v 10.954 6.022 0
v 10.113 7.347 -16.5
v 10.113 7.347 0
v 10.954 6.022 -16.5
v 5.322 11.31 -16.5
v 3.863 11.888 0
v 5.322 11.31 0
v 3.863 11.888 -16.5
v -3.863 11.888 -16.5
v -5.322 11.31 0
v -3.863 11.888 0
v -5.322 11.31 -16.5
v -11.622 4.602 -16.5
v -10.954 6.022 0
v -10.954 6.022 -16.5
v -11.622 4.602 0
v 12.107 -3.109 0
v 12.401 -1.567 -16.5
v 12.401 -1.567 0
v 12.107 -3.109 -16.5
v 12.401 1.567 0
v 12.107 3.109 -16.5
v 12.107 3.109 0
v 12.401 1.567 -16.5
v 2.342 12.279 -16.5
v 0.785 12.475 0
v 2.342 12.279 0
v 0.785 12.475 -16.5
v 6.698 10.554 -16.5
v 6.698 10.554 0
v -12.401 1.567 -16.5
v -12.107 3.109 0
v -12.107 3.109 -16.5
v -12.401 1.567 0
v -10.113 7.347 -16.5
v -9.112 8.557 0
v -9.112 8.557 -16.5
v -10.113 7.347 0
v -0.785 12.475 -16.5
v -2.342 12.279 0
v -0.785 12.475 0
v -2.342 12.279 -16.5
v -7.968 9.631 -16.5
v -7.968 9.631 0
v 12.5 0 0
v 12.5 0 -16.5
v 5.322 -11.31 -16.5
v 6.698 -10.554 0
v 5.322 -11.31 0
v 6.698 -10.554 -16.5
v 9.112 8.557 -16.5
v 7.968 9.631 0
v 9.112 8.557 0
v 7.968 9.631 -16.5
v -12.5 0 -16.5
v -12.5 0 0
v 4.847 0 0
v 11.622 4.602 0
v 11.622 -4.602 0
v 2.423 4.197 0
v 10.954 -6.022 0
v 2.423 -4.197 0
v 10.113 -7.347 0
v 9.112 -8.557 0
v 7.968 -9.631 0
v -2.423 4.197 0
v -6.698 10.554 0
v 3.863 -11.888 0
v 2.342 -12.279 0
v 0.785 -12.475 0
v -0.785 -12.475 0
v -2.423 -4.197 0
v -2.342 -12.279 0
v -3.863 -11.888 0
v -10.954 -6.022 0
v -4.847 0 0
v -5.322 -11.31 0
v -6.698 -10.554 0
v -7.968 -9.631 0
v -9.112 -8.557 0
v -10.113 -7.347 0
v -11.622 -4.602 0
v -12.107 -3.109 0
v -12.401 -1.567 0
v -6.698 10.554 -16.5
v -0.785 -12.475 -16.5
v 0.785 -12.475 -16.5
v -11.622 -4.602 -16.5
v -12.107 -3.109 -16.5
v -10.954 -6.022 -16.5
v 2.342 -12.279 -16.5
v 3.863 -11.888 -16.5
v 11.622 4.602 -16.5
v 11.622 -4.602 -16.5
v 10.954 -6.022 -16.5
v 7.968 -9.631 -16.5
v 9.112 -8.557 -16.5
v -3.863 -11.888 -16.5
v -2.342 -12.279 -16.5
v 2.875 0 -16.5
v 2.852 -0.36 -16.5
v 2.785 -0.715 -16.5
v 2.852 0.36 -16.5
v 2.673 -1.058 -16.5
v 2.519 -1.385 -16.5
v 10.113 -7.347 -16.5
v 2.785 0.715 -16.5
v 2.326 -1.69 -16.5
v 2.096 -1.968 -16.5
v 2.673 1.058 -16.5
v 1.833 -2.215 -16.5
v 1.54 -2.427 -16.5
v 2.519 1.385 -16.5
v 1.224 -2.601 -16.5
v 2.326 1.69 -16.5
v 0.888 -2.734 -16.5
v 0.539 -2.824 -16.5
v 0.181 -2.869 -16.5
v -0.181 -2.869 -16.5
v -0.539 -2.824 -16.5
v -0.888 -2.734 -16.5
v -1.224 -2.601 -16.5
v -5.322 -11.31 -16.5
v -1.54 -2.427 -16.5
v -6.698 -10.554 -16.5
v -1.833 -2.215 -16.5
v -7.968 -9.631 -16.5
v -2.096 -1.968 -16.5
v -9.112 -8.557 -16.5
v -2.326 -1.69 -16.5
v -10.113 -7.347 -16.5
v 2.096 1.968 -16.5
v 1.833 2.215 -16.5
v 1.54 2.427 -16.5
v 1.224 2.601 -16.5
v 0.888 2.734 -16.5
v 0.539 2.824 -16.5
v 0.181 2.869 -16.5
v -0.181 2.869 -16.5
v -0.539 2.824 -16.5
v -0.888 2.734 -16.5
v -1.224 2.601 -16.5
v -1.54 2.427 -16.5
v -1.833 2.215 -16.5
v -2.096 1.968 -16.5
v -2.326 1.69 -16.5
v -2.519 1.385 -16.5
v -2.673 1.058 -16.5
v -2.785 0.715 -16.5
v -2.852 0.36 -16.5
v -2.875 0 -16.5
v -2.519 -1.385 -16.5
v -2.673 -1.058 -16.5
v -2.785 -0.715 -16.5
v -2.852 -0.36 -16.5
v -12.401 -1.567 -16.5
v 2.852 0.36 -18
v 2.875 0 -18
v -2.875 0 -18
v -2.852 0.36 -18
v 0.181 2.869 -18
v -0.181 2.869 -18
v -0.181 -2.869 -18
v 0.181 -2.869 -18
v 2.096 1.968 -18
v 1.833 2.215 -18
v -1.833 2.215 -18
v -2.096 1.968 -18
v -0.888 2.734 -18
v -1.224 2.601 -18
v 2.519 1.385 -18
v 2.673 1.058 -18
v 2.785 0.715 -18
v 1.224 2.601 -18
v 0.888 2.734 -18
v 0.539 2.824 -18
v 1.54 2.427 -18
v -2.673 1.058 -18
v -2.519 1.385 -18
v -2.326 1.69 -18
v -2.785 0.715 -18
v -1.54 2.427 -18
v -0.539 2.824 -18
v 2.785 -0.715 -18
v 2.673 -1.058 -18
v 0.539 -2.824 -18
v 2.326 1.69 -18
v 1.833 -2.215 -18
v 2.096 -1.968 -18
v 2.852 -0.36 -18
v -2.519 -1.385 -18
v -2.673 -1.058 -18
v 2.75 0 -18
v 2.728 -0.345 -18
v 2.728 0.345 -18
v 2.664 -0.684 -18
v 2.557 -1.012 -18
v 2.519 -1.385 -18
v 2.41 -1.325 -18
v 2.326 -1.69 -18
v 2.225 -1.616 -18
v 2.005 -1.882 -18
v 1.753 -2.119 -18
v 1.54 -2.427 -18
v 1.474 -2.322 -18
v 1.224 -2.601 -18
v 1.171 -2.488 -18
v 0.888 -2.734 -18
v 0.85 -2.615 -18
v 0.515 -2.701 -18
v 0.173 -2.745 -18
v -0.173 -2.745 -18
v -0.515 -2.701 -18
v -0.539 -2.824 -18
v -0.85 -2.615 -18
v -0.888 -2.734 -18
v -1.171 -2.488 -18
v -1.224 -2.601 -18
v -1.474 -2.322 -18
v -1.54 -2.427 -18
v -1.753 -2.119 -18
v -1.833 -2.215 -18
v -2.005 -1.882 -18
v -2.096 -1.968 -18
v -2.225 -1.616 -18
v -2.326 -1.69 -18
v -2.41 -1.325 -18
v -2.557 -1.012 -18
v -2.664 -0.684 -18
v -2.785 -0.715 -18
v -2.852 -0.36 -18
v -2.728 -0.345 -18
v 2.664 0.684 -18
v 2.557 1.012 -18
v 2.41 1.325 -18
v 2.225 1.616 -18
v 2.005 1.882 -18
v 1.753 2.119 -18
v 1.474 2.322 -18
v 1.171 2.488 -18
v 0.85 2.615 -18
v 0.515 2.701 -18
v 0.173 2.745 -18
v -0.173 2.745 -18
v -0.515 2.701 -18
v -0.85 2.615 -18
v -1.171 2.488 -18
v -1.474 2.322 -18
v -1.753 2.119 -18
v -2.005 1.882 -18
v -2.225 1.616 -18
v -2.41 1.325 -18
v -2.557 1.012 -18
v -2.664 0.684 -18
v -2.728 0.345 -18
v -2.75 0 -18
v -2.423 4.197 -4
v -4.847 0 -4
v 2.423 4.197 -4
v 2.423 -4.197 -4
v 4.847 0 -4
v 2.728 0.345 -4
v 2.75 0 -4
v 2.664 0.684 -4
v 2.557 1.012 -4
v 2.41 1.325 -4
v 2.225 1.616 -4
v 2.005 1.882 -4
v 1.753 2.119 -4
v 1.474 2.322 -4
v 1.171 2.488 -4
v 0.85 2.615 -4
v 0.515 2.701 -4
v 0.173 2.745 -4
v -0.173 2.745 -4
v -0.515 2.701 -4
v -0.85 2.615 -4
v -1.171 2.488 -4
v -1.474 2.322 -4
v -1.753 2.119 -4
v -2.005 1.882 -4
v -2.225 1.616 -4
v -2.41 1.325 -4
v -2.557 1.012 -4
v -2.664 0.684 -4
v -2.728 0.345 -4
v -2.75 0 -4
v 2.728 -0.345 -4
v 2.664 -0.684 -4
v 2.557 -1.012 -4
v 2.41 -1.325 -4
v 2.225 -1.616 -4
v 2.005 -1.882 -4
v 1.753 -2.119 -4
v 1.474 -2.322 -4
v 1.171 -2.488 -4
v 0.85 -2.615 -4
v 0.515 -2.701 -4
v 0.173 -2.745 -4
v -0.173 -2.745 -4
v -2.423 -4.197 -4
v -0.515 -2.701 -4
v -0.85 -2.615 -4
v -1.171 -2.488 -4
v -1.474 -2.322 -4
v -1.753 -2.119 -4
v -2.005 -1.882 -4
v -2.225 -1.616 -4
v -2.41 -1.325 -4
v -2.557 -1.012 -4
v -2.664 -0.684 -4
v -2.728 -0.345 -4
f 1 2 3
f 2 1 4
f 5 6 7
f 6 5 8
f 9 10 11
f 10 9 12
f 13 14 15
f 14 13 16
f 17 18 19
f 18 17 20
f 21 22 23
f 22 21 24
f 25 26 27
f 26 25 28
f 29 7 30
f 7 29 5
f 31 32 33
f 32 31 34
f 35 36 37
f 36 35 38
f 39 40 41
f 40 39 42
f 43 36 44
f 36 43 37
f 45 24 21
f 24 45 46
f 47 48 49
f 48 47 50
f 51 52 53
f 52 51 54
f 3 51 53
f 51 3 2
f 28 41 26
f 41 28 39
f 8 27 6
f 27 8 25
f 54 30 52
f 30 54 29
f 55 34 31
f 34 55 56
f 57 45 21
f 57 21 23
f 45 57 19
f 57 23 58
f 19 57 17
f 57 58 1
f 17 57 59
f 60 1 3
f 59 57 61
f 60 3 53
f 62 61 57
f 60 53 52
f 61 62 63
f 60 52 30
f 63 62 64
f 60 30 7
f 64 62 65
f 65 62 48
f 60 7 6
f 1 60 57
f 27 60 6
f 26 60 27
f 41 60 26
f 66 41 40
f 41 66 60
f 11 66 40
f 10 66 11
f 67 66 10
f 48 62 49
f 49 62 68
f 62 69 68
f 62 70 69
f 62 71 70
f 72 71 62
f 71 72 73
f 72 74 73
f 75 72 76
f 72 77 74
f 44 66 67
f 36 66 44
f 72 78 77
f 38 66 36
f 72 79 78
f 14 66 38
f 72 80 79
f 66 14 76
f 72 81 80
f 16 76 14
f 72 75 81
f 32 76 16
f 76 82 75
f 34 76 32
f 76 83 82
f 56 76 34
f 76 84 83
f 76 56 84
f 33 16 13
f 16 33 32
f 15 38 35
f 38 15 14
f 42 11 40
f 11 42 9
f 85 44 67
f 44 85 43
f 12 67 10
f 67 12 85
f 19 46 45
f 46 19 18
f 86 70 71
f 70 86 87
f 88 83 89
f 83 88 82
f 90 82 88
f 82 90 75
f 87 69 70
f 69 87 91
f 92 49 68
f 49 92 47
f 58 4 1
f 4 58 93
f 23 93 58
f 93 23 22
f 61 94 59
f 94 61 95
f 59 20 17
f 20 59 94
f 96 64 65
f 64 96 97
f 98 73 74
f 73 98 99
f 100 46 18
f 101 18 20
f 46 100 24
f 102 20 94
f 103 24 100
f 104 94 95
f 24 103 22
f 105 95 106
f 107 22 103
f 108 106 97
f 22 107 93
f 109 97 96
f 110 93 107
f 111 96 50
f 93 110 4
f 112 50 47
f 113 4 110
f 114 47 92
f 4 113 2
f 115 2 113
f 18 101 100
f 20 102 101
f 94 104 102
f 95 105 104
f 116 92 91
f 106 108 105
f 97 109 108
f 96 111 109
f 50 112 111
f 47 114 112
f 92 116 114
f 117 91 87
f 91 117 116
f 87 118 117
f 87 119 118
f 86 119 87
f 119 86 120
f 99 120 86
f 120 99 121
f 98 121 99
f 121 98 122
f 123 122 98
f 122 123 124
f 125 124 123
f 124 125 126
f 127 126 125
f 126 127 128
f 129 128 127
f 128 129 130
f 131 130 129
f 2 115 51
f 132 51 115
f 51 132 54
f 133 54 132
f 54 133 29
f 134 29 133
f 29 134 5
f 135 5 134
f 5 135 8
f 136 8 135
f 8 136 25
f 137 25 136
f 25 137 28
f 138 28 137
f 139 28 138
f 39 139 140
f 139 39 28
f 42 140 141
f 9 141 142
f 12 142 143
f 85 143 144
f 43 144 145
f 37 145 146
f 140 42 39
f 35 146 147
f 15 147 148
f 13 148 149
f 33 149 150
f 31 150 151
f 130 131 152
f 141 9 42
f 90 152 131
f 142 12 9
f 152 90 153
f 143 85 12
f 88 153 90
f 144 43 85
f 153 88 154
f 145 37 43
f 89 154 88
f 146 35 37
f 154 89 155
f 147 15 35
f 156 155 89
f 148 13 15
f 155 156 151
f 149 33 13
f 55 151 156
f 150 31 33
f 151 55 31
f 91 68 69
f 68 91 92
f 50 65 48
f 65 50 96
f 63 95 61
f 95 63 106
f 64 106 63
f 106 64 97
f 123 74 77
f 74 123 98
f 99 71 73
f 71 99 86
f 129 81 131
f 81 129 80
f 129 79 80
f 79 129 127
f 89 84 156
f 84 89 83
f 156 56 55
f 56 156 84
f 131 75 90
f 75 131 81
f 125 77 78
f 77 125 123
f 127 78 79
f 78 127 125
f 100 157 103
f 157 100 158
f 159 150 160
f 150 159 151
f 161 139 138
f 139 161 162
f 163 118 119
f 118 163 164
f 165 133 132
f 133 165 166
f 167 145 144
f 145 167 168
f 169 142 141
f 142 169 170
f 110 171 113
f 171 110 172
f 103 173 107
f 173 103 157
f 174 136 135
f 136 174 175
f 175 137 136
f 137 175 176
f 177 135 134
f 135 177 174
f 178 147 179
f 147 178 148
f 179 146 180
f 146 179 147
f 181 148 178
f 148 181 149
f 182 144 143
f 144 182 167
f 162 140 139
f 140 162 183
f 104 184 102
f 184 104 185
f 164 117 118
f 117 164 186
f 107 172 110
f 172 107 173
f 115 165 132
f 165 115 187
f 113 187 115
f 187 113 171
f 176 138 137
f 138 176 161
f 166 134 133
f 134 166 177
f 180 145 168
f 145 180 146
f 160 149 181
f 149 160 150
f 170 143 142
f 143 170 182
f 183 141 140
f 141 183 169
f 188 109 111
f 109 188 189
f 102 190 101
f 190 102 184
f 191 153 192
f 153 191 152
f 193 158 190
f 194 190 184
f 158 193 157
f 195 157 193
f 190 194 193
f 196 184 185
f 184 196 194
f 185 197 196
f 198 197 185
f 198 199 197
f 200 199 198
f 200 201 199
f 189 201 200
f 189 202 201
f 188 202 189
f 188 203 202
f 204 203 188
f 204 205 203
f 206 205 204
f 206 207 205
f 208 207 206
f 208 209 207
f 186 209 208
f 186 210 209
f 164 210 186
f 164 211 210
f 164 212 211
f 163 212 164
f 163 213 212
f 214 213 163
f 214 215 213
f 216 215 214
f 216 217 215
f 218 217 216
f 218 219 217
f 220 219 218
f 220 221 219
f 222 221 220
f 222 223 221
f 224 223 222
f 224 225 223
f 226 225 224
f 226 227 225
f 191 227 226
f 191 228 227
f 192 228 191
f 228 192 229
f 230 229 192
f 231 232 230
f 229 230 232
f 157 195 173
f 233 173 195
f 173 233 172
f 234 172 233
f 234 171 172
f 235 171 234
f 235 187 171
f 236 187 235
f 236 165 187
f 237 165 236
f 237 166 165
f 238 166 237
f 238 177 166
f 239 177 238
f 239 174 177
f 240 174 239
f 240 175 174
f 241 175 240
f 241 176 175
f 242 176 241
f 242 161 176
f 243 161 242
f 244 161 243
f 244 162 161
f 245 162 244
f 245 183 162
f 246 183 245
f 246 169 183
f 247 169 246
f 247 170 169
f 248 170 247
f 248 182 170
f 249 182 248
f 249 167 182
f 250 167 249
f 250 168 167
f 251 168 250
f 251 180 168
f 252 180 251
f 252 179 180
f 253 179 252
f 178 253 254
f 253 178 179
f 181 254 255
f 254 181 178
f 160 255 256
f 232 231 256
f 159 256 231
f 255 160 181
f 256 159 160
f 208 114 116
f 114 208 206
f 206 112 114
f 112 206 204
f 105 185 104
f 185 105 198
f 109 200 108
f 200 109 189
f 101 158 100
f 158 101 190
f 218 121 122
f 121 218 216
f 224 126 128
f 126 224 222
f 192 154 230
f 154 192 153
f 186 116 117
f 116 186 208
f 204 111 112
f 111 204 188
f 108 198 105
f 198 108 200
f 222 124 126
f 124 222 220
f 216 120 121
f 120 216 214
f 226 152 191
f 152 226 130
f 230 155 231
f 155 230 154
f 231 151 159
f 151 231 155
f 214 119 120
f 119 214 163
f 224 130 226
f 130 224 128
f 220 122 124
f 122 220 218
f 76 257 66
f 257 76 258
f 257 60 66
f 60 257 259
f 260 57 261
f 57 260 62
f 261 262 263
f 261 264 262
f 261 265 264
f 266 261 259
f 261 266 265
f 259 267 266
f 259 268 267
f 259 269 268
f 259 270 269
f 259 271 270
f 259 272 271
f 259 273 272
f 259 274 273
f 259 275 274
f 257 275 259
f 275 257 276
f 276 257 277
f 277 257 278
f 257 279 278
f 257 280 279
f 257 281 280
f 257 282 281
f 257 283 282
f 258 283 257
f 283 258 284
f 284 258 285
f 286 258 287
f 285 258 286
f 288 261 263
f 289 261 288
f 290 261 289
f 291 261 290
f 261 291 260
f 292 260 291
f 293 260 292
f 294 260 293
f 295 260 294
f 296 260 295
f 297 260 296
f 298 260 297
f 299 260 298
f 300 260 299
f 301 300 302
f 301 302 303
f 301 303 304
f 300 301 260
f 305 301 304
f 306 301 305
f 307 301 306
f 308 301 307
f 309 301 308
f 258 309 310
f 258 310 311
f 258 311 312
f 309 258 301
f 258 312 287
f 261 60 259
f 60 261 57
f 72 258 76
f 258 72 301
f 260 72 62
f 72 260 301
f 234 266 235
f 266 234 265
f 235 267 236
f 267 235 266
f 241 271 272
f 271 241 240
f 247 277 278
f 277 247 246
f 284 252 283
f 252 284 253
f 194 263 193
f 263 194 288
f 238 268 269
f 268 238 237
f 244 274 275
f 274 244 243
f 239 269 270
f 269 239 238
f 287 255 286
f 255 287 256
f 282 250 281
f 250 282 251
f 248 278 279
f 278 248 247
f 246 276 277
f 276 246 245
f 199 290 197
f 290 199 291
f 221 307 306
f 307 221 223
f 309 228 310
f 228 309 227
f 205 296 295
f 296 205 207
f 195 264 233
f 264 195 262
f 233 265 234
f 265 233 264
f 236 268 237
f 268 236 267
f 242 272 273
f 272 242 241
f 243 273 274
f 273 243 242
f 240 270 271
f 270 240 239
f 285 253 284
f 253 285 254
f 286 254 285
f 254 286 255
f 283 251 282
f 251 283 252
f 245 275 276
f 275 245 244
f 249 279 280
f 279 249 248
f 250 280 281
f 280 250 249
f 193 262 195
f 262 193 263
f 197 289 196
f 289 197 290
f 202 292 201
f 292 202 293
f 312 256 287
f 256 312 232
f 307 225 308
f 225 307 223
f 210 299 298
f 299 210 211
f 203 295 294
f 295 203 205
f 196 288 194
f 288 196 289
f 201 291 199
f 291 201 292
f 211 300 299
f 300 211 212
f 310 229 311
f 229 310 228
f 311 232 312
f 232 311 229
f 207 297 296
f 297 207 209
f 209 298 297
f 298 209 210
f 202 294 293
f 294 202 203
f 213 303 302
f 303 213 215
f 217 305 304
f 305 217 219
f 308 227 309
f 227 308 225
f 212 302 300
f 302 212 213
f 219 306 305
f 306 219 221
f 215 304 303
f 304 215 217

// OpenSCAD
$fn = 50;

difference() {
	union() {
		translate(v = [0, 0, -16.5]) {
			cylinder(h = 16.5, r = 12.5);
		}
		#translate(v = [0, 0, -18.0]) {
			cylinder(h = 18, r = 2.875);
		}
	}
	union() {
		translate(v = [0, 0, 0]) {
			rotate(a = [0, 0, 0]) {
				difference() {
					union() {
						translate(v = [0, 0, -4]) {
							linear_extrude(height = 4) {
								polygon(points = [[4.8468, 0.0], [2.4234000000000004, 4.197451927062417], [-2.423399999999999, 4.197451927062417], [-4.8468, 5.935618106107392e-16], [-2.423400000000002, -4.197451927062416], [2.423399999999997, -4.197451927062419]]);
							}
						}
					}
					union();
				}
			}
		}
		#translate(v = [0, 0, -100.0]) {
			cylinder(h = 200, r = 2.75);
		}
	}
}
